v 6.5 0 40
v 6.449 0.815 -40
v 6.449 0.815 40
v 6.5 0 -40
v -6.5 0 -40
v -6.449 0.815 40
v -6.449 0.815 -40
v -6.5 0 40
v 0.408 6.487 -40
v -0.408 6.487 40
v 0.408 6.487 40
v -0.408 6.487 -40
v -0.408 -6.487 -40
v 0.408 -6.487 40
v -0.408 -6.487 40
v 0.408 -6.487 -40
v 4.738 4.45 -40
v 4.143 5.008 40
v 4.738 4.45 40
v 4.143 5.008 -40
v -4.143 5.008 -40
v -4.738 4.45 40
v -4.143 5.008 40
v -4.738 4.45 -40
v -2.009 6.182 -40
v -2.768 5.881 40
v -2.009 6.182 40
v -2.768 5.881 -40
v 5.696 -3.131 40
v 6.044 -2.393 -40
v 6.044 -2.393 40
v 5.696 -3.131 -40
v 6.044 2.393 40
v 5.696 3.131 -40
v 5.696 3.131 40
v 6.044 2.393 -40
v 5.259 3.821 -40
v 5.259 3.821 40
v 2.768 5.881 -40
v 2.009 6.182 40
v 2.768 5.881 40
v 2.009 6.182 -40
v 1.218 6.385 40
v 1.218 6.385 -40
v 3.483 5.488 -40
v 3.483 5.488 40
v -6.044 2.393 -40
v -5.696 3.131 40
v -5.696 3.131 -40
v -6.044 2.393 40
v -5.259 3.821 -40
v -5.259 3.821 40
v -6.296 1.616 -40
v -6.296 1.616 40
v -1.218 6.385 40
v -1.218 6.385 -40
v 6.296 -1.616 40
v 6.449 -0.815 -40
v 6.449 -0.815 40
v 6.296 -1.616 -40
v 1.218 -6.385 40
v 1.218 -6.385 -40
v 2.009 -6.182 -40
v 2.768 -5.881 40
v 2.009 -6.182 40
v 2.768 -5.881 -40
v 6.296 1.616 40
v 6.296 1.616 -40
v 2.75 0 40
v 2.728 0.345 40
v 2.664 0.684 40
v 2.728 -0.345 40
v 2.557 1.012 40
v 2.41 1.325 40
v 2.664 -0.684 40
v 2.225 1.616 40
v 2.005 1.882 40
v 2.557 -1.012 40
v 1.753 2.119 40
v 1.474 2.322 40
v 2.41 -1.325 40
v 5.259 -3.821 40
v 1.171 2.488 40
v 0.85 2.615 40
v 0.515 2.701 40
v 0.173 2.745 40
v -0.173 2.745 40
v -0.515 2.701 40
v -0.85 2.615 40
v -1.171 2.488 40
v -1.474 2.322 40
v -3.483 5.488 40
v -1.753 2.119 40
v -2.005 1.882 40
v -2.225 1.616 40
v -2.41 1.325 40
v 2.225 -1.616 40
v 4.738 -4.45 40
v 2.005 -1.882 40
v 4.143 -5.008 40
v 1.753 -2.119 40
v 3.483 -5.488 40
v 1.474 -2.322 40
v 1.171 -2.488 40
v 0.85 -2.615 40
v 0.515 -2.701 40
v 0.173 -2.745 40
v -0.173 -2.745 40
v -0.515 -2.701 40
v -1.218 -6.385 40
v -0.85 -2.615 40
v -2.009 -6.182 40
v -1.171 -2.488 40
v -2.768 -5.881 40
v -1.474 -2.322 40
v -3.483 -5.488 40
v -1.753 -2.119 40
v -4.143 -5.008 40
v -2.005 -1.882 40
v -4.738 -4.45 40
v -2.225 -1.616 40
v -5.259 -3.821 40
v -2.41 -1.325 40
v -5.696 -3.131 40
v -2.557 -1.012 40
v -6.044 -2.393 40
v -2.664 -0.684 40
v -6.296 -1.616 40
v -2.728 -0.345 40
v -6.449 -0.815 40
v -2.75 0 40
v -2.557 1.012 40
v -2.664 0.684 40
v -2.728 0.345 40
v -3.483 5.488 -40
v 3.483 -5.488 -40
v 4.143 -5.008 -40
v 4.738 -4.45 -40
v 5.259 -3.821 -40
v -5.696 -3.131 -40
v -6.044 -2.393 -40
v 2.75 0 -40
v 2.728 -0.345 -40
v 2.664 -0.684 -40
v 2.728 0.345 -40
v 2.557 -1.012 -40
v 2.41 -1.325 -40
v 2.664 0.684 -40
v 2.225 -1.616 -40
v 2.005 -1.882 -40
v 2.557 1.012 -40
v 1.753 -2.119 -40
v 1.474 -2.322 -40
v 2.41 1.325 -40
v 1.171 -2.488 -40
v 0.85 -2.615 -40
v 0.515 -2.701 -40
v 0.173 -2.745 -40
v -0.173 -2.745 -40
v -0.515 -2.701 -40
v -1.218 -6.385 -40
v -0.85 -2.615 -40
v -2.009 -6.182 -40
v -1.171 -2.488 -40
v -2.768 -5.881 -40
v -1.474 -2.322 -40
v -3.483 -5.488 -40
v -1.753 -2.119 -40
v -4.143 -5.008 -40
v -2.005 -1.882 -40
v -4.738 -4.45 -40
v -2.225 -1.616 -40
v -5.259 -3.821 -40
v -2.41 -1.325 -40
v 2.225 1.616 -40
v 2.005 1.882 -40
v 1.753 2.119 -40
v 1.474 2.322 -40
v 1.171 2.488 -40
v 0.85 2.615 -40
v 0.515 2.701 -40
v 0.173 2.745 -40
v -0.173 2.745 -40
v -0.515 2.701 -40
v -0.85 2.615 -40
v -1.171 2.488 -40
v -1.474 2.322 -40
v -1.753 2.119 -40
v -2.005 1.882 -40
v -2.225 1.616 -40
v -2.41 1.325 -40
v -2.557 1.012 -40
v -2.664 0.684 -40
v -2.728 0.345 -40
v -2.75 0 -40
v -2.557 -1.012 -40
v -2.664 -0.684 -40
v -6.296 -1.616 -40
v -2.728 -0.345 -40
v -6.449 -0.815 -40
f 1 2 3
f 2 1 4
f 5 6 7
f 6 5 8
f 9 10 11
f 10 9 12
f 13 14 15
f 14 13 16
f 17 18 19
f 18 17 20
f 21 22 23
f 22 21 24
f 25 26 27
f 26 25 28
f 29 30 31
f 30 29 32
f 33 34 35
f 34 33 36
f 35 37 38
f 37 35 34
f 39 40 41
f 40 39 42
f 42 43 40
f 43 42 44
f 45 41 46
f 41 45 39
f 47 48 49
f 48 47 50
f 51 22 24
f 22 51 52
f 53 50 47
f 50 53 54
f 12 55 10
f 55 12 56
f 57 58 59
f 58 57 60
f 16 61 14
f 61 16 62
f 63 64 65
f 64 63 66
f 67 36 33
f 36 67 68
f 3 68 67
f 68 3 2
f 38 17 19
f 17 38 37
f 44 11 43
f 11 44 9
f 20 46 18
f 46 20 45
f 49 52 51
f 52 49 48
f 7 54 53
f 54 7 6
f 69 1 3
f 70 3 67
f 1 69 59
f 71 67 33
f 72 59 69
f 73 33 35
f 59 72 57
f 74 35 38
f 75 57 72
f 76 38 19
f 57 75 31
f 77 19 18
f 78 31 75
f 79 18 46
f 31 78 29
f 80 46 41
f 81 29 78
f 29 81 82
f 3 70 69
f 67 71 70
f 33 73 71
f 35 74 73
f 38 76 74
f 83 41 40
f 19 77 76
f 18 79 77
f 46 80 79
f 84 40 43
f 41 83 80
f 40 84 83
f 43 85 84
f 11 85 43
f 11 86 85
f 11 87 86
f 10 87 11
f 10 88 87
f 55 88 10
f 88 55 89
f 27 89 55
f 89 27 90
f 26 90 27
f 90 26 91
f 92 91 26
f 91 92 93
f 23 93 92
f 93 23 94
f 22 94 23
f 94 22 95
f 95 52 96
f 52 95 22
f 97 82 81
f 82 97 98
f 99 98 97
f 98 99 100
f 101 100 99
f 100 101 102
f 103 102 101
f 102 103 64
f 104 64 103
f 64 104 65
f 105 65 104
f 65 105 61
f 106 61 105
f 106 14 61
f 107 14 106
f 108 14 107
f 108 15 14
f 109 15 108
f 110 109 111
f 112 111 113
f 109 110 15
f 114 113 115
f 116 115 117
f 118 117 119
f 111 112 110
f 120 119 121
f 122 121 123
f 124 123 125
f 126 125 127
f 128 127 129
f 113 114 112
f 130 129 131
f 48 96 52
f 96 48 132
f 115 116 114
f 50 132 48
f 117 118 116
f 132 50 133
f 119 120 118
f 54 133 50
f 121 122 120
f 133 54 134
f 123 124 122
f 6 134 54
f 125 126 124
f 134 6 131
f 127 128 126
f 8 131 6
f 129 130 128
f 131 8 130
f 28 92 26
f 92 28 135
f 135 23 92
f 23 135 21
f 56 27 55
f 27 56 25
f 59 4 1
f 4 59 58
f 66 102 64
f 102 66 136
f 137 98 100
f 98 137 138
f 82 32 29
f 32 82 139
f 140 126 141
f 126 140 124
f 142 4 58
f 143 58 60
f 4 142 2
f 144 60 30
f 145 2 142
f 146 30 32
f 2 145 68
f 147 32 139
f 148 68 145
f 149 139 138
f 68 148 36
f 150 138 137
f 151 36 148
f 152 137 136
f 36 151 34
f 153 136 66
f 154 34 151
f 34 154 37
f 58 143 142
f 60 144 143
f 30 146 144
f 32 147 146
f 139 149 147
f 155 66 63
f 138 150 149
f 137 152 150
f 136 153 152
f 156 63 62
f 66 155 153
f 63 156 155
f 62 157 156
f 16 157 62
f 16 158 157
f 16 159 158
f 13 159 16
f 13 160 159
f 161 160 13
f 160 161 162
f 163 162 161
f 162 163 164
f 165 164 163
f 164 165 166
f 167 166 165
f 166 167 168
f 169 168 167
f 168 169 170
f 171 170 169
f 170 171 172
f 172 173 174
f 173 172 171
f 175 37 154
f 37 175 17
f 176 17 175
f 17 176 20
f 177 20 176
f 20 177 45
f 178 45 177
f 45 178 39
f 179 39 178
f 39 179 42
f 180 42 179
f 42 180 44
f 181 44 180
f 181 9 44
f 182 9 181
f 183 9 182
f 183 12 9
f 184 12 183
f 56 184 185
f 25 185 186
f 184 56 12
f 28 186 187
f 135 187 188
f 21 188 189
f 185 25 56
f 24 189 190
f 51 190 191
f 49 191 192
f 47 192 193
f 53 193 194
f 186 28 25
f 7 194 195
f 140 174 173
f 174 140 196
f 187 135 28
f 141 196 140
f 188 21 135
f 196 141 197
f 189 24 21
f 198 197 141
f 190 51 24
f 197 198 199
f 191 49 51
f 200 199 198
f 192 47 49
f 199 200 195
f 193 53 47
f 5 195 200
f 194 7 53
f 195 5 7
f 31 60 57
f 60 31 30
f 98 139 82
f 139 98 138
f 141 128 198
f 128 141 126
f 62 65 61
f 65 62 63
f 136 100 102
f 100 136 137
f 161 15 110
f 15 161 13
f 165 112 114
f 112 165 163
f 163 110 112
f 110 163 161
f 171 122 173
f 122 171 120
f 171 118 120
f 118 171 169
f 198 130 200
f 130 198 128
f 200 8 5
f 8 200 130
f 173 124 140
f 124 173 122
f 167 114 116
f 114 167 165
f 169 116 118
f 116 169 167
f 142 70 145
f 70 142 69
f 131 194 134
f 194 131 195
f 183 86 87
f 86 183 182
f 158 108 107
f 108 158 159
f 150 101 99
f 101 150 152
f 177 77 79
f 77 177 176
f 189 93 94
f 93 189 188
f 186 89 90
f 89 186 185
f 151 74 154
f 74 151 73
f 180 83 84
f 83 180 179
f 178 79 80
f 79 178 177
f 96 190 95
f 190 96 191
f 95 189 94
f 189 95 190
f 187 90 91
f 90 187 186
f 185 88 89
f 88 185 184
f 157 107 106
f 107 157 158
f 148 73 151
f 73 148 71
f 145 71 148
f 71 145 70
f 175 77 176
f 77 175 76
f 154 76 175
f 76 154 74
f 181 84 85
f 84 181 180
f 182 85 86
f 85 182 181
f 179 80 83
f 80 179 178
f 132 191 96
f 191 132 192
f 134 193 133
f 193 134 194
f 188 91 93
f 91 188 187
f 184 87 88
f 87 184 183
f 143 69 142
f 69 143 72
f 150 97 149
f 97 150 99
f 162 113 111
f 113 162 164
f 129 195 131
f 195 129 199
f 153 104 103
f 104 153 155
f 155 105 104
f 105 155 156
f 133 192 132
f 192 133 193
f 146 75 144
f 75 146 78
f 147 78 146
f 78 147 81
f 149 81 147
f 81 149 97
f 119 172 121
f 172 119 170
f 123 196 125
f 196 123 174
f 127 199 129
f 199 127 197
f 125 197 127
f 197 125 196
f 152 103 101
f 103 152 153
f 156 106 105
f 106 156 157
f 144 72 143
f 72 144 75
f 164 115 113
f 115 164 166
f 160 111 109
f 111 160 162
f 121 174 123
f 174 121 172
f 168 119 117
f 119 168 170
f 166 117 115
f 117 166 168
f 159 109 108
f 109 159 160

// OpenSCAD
$fn = 50;


difference() {
	union() {
		translate(v = [0, 0, -40.0000000000]) {
			cylinder(h = 80, r = 6.5000000000);
		}
	}
	union() {
		translate(v = [0, 0, -100.0000000000]) {
			cylinder(h = 200, r = 2.7500000000);
		}
	}
}
